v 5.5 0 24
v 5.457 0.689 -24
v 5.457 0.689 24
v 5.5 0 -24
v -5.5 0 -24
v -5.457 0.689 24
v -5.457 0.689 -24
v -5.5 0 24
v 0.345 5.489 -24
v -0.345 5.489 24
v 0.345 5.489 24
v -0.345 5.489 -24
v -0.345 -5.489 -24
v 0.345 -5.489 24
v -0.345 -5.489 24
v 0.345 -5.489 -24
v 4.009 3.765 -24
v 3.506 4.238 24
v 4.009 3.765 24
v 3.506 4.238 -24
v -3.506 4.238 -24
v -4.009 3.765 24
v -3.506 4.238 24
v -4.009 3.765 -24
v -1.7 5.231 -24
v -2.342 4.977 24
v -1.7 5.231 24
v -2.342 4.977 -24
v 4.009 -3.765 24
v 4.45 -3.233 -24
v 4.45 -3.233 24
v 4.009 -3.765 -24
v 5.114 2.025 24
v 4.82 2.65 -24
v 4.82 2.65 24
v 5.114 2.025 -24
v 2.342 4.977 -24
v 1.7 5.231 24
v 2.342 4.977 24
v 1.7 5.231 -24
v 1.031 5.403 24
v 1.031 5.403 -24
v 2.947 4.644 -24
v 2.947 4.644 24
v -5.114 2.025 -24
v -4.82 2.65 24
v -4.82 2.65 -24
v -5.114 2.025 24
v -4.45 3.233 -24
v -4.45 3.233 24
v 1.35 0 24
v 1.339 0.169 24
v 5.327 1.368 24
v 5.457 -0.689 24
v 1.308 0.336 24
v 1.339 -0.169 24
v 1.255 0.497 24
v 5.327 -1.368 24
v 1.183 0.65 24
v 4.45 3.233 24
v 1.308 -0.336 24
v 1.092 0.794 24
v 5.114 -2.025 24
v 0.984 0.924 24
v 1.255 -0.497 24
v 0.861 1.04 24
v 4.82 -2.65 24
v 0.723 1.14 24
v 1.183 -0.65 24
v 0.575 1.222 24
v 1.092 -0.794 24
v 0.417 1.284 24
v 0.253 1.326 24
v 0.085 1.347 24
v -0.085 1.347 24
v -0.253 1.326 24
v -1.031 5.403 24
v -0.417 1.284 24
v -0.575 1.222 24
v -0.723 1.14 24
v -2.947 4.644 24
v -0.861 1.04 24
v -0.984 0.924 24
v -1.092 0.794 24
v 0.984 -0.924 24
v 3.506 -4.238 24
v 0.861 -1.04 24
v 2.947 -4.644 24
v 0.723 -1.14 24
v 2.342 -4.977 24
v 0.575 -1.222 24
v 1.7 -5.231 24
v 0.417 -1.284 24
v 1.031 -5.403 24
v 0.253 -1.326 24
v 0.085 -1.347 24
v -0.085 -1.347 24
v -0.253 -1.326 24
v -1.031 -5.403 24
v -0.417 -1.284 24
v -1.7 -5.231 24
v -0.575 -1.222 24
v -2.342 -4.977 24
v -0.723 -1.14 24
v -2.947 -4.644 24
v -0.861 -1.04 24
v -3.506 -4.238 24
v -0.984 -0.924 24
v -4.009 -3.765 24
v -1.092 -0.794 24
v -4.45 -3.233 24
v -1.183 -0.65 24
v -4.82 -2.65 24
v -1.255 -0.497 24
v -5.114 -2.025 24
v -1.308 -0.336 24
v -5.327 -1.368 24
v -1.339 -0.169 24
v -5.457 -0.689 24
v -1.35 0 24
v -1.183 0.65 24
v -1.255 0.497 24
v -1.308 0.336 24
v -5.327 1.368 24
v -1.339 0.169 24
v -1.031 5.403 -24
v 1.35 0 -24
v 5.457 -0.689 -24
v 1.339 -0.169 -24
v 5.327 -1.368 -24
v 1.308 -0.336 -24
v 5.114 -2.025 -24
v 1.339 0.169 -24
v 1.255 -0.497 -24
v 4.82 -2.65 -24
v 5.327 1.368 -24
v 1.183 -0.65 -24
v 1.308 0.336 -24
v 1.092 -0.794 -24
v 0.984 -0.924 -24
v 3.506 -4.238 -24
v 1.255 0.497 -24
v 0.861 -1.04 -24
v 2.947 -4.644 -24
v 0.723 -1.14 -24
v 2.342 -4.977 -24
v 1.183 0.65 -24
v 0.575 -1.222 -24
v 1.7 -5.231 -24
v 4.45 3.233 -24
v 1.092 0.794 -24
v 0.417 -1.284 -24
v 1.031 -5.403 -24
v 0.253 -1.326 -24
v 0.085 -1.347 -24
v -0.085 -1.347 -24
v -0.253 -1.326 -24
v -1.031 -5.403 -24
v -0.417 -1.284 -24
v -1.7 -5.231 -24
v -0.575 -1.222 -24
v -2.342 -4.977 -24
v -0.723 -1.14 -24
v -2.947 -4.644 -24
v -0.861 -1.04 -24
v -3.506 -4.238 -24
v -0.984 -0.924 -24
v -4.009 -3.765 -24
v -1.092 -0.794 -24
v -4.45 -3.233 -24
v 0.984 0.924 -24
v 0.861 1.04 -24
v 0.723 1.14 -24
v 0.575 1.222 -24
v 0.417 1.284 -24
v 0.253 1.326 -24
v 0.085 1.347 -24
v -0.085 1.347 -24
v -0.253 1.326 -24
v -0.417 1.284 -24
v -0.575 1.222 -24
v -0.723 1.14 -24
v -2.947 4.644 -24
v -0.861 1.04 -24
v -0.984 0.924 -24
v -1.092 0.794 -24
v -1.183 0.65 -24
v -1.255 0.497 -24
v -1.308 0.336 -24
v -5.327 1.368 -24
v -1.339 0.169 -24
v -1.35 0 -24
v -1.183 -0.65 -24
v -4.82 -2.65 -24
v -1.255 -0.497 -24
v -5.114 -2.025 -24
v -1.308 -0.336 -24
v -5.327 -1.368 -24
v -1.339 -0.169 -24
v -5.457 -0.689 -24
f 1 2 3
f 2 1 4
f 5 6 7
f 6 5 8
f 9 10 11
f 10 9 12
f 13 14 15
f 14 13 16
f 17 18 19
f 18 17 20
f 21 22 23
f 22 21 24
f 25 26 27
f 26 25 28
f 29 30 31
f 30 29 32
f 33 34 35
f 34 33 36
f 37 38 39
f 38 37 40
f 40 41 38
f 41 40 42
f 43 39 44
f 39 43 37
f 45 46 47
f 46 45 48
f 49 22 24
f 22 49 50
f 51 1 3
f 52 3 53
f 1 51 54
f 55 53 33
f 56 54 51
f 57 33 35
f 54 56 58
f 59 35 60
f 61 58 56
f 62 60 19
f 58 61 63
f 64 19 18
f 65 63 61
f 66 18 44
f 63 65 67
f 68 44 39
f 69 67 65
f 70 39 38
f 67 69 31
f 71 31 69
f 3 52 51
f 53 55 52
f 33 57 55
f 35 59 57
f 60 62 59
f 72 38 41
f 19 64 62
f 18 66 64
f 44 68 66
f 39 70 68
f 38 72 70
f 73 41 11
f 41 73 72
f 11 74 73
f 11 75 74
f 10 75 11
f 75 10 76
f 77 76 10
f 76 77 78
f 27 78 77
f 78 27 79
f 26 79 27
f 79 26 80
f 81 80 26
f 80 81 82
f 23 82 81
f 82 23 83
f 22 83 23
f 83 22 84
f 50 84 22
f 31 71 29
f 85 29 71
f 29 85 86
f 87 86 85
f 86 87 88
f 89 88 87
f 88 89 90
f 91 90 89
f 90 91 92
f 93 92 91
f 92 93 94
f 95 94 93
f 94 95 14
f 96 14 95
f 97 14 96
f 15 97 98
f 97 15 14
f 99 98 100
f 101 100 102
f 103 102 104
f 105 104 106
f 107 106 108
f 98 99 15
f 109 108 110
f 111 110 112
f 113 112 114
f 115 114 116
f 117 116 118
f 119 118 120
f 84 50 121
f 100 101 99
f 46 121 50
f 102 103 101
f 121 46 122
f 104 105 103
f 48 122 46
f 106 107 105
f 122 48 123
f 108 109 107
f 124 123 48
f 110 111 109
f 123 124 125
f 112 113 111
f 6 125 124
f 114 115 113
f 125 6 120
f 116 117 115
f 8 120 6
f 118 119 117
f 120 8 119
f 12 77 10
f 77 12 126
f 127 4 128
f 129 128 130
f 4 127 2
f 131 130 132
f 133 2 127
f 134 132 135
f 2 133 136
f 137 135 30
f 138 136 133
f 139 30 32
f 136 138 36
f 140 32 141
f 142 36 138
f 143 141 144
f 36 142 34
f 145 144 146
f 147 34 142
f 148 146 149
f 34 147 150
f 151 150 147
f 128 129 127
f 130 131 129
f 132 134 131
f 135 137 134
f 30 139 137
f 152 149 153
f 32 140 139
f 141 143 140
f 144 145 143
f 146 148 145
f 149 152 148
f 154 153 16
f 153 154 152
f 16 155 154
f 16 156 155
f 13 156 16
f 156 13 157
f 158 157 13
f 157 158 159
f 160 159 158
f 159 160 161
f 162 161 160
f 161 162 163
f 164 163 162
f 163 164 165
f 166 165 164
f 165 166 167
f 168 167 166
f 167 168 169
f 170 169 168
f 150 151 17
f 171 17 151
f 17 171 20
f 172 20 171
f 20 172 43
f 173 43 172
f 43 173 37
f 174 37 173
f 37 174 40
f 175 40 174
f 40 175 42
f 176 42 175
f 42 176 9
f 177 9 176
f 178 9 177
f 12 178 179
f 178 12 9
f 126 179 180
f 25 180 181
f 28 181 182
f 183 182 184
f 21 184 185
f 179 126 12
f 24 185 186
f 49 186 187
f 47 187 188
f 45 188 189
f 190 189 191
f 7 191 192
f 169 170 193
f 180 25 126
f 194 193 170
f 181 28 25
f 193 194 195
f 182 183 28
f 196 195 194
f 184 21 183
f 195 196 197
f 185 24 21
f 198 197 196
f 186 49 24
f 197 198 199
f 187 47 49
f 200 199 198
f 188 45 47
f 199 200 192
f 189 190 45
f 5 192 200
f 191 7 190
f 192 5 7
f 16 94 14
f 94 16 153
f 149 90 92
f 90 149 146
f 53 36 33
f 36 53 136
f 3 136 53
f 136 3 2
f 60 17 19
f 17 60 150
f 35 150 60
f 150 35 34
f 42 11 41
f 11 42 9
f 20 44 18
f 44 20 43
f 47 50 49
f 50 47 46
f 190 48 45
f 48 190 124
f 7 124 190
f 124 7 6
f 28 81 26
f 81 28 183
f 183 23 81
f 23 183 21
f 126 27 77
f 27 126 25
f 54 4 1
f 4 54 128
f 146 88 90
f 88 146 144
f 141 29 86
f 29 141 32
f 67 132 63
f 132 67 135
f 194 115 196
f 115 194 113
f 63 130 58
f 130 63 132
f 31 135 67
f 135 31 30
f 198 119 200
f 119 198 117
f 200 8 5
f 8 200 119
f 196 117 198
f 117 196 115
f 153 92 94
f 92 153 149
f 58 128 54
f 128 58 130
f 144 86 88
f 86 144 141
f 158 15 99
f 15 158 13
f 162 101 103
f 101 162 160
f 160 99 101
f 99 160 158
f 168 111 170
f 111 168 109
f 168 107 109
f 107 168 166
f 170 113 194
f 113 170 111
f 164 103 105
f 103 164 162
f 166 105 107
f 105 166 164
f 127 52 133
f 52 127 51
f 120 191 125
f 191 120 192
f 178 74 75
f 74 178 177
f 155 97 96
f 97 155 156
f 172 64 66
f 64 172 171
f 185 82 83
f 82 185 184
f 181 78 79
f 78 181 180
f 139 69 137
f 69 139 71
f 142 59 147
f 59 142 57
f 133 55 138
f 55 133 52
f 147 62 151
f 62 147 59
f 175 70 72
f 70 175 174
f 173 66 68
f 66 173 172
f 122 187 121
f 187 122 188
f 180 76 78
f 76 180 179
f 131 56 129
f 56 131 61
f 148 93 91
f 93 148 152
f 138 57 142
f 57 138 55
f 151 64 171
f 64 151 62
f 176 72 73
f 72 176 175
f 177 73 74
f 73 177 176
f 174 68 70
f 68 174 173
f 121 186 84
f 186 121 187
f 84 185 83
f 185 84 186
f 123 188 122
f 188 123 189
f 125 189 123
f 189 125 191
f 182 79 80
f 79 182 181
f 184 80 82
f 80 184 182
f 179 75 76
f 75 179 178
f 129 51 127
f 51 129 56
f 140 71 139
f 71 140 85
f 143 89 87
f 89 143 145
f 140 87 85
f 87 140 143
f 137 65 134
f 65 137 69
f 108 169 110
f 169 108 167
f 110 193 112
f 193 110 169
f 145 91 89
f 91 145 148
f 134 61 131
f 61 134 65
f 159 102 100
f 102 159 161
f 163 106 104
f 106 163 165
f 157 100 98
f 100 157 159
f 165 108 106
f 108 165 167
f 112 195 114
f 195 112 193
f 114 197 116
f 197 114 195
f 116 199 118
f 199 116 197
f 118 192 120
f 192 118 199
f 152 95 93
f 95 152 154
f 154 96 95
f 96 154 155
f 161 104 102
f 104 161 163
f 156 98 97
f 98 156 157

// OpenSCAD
$fn = 50;


difference() {
	union() {
		translate(v = [0, 0, -24.0000000000]) {
			cylinder(h = 48, r = 5.5000000000);
		}
	}
	union() {
		translate(v = [0, 0, -100.0000000000]) {
			cylinder(h = 200, r = 1.3500000000);
		}
	}
}
